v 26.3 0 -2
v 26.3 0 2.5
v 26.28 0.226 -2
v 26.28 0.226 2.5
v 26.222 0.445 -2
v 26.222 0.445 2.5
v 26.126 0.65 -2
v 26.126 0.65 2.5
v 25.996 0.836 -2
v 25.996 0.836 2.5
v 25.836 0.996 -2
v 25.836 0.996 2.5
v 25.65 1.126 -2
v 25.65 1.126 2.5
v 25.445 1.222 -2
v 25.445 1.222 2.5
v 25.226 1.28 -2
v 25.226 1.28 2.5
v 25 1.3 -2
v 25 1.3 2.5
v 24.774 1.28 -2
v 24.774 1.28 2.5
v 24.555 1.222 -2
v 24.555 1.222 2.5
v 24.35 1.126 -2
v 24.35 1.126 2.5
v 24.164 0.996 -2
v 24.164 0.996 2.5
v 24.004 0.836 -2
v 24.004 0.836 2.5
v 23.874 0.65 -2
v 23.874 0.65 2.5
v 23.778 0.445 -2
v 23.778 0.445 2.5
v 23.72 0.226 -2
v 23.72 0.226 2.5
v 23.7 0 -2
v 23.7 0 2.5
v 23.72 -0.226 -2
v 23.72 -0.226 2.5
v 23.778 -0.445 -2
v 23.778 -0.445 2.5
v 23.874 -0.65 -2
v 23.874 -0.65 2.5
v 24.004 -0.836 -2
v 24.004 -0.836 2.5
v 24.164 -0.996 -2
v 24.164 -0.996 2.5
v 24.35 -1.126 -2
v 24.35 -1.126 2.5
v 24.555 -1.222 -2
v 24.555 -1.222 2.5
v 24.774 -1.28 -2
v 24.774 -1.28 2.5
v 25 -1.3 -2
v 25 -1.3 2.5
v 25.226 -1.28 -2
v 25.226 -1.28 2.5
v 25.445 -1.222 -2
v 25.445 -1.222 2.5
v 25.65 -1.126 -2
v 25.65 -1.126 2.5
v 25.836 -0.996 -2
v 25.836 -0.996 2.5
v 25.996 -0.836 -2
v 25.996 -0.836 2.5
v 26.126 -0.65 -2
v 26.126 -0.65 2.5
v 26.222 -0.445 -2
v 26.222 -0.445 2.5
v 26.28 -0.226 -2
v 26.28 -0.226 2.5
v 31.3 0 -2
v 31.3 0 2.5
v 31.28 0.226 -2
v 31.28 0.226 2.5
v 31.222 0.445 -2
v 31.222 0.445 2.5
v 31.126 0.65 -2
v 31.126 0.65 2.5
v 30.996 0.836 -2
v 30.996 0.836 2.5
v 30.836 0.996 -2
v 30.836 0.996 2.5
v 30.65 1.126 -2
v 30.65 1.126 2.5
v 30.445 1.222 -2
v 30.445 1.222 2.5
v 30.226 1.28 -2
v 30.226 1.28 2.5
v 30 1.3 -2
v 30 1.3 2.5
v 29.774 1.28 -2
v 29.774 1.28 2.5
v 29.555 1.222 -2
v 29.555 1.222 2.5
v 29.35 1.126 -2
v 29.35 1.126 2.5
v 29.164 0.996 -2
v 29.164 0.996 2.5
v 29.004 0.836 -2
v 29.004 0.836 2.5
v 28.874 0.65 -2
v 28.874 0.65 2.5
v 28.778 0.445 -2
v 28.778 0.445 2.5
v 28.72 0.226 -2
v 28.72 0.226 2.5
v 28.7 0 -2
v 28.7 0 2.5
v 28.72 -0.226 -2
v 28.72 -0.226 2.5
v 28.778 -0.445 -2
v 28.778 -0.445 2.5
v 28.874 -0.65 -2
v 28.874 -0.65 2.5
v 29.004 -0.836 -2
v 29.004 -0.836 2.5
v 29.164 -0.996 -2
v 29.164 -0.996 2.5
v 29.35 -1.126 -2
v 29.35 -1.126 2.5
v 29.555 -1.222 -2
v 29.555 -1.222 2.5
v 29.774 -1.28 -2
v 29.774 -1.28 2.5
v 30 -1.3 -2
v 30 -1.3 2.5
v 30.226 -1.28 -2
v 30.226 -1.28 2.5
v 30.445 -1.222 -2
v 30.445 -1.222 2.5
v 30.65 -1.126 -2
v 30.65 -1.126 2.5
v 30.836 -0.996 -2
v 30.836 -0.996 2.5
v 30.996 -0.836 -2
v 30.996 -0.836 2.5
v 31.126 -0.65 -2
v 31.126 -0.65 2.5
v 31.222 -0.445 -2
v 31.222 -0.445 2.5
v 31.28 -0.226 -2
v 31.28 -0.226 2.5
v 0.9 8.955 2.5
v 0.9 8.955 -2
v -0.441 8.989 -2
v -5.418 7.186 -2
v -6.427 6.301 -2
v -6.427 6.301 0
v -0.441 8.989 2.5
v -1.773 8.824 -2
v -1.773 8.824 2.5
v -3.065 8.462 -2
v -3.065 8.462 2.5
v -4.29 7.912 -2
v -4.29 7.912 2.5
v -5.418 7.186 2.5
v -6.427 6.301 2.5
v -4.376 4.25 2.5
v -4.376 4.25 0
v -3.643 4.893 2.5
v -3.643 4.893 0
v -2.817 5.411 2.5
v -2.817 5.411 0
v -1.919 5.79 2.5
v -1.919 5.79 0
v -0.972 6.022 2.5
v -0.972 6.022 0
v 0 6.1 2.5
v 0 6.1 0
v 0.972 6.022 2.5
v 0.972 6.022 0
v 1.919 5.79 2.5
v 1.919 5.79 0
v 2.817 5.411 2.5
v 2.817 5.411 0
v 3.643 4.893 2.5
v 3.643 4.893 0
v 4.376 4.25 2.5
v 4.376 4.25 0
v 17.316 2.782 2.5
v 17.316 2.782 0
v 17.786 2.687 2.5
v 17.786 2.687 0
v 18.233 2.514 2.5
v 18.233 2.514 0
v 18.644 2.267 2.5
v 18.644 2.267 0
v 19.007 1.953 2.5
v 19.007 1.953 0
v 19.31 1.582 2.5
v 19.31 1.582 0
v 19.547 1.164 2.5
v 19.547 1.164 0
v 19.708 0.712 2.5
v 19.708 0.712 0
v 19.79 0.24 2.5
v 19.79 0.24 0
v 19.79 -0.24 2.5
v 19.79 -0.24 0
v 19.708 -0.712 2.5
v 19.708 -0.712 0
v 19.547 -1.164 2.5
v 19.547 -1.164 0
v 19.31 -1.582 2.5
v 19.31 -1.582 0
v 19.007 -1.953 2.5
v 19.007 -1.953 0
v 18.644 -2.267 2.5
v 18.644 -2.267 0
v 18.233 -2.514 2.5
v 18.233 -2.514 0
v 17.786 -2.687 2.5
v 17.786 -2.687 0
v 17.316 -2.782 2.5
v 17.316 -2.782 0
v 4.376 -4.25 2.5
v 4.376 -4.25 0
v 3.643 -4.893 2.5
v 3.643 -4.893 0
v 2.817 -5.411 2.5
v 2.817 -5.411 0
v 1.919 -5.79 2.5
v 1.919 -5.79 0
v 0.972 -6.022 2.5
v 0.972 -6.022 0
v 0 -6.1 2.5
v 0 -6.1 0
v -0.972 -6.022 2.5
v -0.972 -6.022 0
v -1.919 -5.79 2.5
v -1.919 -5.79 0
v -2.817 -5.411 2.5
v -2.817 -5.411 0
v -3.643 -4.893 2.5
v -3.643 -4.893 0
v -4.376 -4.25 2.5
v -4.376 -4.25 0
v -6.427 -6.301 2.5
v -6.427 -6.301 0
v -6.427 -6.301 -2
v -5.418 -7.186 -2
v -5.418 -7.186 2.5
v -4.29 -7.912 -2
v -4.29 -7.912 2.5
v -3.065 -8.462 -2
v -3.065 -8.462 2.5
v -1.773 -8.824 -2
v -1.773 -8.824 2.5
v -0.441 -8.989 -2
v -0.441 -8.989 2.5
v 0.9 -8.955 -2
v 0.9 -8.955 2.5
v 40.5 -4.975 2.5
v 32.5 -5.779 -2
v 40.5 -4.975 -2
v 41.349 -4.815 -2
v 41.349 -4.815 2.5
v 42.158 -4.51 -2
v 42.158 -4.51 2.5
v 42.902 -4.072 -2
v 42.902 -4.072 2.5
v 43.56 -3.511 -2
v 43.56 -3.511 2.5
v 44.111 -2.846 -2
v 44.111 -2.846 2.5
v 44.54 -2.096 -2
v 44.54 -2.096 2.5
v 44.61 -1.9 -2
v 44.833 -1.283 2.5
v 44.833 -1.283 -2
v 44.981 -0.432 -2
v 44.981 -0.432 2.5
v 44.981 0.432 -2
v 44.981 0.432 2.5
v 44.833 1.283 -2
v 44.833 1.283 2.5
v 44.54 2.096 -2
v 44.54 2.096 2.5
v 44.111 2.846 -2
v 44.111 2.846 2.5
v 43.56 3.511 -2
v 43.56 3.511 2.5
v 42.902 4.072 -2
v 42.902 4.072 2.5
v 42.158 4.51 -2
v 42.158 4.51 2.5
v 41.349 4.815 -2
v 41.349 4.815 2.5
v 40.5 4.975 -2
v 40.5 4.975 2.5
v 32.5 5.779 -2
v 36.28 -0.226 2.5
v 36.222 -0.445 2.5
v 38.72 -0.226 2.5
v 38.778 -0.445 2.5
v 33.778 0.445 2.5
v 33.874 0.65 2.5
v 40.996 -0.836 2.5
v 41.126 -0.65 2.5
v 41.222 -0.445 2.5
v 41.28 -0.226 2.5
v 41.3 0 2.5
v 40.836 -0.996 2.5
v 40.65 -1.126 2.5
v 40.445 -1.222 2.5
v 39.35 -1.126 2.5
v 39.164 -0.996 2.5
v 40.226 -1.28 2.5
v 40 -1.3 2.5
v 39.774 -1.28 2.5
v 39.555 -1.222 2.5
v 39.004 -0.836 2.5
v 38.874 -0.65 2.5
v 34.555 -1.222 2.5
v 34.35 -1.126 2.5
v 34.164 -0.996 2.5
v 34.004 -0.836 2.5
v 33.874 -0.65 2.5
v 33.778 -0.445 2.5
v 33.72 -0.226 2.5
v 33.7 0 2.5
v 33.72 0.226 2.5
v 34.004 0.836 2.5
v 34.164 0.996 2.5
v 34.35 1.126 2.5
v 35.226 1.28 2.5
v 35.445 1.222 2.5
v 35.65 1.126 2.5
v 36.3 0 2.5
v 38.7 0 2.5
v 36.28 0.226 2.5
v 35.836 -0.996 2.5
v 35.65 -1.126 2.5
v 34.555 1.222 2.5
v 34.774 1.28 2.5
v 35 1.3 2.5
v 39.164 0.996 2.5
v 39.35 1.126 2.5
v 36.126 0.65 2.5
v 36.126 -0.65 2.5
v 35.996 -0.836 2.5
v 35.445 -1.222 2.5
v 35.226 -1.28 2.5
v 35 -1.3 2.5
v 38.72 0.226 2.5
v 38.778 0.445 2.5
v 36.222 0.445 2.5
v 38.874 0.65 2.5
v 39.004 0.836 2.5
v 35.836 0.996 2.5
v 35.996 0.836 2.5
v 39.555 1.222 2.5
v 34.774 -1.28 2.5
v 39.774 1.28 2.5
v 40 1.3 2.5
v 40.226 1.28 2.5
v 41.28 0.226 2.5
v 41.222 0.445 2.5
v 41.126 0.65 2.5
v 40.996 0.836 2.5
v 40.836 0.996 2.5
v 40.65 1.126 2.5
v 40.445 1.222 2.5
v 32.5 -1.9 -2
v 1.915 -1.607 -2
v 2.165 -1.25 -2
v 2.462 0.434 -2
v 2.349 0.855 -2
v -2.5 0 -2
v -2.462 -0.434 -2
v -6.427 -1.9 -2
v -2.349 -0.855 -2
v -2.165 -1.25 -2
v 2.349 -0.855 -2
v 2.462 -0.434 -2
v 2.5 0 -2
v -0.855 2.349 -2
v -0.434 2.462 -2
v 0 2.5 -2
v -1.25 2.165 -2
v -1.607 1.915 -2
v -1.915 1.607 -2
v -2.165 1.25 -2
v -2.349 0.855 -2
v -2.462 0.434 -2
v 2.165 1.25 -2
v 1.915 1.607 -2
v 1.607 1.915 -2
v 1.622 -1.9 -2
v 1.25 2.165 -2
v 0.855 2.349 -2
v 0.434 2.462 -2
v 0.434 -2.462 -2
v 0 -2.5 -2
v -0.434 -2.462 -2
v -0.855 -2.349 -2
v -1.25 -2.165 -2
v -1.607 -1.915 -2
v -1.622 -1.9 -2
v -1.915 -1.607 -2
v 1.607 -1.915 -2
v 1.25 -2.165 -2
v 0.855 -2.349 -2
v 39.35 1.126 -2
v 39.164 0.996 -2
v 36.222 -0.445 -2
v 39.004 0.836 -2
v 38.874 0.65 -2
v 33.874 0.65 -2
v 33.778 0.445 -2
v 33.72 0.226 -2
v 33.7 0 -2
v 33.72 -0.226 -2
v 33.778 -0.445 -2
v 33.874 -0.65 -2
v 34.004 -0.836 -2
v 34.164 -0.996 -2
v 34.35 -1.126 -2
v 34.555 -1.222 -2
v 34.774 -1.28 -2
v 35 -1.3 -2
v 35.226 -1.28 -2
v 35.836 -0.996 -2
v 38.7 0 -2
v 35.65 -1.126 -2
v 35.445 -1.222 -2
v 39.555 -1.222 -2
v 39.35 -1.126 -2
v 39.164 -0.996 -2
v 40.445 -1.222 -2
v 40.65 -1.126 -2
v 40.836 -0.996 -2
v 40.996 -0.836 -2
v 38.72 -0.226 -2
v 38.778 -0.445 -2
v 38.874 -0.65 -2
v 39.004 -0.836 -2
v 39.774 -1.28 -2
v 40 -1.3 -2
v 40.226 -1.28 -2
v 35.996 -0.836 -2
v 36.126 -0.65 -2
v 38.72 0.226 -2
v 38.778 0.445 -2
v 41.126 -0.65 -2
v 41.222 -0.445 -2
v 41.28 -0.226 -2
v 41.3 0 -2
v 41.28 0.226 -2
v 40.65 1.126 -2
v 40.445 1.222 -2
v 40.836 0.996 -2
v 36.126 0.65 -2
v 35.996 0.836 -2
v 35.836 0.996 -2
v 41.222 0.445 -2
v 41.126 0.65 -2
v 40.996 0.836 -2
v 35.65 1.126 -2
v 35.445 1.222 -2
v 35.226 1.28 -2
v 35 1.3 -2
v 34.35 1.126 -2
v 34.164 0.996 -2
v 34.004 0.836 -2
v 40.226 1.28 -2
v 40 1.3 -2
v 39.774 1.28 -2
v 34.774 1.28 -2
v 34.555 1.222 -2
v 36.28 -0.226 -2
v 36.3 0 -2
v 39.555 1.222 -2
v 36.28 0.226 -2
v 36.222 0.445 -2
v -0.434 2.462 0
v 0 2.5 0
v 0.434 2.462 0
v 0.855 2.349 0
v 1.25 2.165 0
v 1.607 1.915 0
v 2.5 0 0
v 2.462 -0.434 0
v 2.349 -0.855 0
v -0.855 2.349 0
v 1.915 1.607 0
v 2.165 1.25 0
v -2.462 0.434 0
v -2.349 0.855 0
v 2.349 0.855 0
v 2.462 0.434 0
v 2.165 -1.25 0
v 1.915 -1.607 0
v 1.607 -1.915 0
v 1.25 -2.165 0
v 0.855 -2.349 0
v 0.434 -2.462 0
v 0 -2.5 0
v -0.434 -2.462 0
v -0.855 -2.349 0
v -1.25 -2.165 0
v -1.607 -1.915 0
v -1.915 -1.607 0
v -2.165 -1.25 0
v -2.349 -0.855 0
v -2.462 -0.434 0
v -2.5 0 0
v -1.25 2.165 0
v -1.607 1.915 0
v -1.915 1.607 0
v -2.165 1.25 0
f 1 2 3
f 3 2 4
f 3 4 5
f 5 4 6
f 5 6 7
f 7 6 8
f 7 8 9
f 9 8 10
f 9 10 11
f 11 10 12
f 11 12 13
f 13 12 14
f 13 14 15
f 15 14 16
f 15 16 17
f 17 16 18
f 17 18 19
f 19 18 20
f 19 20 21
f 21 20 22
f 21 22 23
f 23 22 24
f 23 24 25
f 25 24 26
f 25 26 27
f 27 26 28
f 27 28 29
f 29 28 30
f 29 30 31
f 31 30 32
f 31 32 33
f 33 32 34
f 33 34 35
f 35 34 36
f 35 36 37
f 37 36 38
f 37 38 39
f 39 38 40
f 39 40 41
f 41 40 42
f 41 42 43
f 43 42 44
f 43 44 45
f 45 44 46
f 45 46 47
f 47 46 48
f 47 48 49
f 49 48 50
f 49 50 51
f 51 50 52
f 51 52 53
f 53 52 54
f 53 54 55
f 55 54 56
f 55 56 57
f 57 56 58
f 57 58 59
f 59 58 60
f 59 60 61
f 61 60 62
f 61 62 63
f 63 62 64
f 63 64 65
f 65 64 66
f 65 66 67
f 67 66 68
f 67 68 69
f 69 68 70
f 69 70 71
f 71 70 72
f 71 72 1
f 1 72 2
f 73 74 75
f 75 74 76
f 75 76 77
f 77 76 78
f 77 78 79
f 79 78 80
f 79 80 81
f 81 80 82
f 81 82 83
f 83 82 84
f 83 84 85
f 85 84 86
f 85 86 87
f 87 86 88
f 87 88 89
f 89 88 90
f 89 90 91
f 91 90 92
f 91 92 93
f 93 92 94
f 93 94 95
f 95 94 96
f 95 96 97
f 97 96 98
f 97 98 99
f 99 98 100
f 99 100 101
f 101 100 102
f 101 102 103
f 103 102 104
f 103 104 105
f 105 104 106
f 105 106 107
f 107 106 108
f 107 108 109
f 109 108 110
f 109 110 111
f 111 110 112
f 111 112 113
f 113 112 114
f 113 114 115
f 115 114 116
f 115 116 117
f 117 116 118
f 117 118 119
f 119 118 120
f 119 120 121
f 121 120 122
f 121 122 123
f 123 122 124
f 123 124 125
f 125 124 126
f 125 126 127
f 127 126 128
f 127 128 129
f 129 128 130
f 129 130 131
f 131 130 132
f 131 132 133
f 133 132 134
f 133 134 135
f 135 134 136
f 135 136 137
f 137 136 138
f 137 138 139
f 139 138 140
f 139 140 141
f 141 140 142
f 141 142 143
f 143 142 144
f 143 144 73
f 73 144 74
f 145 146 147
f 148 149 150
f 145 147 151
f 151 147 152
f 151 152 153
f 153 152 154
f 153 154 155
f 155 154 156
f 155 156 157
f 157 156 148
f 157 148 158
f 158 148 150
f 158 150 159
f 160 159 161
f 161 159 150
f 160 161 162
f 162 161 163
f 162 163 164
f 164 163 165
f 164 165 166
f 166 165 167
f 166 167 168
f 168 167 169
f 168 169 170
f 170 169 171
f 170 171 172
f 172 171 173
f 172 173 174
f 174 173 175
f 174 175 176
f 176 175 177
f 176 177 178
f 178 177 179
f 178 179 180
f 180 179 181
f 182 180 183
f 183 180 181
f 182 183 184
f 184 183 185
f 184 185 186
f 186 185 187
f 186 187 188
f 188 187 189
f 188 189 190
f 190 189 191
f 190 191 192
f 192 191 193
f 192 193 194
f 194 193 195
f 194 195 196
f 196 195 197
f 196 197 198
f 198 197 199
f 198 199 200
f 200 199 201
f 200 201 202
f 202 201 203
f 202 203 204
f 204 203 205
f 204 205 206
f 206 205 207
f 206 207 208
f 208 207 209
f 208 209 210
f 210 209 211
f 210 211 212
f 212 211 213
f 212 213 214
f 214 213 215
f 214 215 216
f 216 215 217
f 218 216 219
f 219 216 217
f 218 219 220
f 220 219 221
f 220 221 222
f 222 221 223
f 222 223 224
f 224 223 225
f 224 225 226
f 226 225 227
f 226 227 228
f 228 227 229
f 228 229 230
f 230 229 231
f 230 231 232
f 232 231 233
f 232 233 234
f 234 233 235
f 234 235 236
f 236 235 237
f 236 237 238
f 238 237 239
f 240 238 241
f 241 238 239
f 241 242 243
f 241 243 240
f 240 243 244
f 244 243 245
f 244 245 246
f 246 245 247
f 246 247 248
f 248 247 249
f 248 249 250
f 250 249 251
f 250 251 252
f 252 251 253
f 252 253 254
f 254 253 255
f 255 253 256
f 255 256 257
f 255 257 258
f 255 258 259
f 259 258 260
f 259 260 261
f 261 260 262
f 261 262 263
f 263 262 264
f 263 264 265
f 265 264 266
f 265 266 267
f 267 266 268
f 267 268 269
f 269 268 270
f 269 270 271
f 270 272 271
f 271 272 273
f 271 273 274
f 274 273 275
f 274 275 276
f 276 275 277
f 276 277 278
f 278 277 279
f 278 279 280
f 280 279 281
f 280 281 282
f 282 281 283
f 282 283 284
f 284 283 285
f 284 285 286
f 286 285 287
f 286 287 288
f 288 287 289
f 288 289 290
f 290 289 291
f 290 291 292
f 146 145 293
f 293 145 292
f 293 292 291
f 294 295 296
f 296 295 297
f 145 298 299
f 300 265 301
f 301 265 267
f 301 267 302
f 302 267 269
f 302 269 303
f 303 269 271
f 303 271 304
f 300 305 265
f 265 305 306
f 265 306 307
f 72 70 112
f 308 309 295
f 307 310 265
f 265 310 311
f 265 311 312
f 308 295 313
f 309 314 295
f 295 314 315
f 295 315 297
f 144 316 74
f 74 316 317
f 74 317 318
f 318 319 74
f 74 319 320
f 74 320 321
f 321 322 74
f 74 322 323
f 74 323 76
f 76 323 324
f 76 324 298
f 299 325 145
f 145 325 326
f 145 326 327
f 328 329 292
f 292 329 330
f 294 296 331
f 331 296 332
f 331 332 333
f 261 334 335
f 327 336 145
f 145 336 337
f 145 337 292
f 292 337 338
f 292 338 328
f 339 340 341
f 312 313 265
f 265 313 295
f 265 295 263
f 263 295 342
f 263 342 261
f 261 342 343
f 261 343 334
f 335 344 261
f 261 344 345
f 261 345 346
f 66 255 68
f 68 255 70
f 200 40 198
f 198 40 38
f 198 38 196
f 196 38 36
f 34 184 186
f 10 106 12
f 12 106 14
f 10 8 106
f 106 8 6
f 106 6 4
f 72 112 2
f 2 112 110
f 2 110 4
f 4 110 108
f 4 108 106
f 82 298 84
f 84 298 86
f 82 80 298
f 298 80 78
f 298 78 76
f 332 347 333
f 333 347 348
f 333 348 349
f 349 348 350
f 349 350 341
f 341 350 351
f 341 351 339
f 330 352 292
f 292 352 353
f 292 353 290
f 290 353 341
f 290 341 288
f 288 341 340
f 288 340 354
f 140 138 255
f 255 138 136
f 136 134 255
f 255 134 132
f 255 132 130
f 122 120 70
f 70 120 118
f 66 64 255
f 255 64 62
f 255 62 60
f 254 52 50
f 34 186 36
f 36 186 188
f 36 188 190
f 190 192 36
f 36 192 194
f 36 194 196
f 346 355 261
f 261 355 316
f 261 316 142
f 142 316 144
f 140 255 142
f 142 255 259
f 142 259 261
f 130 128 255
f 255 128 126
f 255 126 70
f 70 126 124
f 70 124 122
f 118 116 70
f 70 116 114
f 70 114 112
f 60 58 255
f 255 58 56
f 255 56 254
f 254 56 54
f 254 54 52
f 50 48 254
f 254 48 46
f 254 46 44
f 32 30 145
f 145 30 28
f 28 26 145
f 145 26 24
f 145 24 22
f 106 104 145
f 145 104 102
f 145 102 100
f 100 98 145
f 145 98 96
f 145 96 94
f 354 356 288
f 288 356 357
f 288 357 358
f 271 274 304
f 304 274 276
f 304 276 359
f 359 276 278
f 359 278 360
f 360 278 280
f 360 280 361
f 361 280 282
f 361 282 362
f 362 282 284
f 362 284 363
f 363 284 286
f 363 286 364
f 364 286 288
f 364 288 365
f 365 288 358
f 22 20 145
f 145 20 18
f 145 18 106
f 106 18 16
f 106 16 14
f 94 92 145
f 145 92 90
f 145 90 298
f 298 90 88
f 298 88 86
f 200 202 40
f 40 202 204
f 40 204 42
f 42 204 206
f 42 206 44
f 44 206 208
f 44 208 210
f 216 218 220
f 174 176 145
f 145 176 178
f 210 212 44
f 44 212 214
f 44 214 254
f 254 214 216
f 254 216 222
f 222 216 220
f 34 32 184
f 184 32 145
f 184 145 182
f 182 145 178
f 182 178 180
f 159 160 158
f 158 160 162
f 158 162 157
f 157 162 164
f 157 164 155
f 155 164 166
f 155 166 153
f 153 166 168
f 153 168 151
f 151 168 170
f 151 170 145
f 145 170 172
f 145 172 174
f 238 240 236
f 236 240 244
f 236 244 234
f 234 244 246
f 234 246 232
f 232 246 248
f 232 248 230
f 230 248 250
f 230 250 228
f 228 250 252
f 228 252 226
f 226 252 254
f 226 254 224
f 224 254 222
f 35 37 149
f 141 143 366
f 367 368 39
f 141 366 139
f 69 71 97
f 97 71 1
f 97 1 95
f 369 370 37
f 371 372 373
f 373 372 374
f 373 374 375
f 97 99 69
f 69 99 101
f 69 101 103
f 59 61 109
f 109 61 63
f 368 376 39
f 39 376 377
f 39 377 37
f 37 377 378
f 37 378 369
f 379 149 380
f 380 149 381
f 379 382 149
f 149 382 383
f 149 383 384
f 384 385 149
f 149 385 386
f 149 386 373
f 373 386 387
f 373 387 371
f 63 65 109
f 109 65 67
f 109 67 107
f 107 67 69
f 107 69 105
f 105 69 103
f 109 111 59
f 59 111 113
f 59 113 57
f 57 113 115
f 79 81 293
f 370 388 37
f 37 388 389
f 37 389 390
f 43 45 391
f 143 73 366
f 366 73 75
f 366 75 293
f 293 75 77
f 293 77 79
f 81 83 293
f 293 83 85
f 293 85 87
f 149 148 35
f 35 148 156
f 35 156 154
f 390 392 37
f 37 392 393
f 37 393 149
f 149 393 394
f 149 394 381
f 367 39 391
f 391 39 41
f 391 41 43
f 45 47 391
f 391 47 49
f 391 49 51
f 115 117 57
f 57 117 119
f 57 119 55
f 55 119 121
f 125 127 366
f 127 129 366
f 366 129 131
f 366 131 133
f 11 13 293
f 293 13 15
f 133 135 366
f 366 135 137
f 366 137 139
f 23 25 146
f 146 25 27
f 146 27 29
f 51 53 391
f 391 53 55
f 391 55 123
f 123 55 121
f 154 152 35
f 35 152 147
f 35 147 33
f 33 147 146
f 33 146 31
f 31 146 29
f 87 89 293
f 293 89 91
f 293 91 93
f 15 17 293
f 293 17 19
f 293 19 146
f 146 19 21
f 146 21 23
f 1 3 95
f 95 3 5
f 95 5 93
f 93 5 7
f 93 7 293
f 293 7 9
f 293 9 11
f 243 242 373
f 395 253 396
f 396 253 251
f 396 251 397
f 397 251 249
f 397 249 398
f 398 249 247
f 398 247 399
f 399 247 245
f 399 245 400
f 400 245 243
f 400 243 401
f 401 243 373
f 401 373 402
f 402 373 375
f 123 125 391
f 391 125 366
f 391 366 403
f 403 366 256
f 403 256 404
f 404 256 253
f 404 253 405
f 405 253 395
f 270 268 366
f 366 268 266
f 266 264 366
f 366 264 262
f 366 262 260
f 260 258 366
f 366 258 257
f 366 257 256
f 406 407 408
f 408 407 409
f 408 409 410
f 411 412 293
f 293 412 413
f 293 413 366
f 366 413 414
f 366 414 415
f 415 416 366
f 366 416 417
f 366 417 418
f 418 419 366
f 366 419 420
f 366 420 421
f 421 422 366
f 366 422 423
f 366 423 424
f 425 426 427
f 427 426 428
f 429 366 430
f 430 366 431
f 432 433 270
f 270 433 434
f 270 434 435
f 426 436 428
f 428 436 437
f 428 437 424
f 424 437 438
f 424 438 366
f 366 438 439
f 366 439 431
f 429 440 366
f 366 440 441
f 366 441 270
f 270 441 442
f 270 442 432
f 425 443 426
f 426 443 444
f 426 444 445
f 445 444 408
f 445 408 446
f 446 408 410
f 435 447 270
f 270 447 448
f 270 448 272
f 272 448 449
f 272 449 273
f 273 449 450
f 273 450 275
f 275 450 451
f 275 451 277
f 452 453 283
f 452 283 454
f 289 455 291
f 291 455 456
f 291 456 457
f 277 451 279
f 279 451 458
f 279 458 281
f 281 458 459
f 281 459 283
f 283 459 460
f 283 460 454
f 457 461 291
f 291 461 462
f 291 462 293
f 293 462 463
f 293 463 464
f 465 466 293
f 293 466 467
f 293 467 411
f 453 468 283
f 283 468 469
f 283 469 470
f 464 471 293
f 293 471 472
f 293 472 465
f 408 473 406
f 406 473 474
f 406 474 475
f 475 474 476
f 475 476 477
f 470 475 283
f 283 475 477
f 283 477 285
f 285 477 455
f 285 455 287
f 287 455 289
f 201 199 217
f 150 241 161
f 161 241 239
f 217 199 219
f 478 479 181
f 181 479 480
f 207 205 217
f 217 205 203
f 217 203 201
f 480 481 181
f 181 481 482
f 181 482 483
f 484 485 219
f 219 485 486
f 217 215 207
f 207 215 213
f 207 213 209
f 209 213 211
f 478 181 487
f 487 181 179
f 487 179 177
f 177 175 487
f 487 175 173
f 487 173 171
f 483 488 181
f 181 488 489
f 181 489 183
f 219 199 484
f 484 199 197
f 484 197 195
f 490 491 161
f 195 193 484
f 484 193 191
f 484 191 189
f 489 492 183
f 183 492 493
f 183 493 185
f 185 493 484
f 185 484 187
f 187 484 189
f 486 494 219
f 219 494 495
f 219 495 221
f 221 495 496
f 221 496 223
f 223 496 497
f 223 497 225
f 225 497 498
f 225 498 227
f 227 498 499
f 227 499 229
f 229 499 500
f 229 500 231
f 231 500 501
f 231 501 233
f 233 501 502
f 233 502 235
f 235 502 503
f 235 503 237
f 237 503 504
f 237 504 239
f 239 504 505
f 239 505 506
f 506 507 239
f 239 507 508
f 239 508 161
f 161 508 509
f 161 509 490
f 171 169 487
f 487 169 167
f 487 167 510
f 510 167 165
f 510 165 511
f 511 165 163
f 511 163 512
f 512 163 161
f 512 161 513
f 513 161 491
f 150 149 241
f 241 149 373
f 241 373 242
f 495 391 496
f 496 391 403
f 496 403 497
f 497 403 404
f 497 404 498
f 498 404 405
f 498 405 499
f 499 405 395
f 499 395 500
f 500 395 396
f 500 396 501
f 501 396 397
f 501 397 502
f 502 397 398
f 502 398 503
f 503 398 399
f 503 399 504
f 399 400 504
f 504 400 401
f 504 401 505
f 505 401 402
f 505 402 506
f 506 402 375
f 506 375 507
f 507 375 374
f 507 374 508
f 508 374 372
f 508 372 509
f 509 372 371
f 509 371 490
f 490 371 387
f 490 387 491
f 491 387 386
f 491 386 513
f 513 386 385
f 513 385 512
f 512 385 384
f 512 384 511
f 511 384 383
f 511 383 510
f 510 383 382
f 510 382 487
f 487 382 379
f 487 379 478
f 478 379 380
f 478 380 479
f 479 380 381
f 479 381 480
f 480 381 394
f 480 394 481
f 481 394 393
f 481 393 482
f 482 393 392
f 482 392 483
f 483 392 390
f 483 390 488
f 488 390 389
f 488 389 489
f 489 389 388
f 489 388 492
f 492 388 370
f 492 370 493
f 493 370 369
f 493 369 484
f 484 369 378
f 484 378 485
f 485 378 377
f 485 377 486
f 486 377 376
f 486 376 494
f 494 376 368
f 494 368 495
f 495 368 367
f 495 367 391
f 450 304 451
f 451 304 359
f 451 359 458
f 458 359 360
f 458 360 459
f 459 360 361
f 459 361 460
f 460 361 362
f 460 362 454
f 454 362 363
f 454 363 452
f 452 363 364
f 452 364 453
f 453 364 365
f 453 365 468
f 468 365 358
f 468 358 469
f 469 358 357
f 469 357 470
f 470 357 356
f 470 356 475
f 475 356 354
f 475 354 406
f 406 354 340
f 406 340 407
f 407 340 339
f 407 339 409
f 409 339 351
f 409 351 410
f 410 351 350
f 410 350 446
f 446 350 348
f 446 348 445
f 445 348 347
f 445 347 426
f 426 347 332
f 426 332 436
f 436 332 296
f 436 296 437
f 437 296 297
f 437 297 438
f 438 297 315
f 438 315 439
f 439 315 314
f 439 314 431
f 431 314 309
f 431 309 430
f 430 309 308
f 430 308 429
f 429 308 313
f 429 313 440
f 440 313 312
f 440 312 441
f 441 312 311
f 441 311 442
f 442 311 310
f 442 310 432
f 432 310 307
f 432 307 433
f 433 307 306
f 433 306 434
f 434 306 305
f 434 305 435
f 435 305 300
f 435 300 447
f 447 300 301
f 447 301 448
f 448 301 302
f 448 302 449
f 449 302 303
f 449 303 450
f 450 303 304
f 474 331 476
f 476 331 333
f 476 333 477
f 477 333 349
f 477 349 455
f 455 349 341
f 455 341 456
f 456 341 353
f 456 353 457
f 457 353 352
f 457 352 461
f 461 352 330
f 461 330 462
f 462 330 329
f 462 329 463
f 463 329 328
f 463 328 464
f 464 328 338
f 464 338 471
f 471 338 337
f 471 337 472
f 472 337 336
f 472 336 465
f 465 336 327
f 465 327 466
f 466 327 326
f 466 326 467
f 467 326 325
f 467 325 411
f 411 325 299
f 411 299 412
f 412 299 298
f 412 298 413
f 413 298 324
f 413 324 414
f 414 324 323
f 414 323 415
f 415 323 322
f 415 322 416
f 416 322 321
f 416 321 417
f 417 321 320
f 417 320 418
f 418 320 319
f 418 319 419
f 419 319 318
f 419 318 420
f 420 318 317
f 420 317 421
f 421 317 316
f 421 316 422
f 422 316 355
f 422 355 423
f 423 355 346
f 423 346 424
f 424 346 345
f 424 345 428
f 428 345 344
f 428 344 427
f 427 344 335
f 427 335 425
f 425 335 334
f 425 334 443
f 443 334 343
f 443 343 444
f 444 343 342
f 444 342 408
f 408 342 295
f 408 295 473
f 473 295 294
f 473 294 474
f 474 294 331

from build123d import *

# Parameters (mm, degrees)
MAIN_DEPTH            = 2.5
ORIGINALBRACKET_START = 2
ESQUISSE2_R           = 2.5
ORIGINALBRACKET_DEPTH = 2
ESQUISSE3_R           = 1.3
FIXINGHOLE_DEPTH      = 47.111278447
LPATTERN1_COUNT       = 4
LPATTERN1_PITCH       = 5


with BuildPart() as part:
    # Esquisse1 → Main (new body)
    with BuildSketch(Plane.XY):
        with BuildLine():
            Line((-4.375785644, 4.25), (-6.426543071, 6.300757427))
            ThreePointArc((-6.426543071, 6.300757427), (-3.065415215, 8.461869153), (0.9, 8.954886934))
            Line((0.9, 8.954886934), (40.5, 4.974937186))
            ThreePointArc((40.5, 4.974937186), (45, 0), (40.5, -4.974937186))
            Line((40.5, -4.974937186), (0.9, -8.954886934))
            ThreePointArc((0.9, -8.954886934), (-3.065415215, -8.461869153), (-6.426543071, -6.300757427))
            Line((-6.426543071, -6.300757427), (-4.375785644, -4.25))
            ThreePointArc((-4.375785644, -4.25), (0, -6.1), (4.375785644, -4.25))
            Line((4.375785644, -4.25), (17.31559729, -2.78215714))
            ThreePointArc((17.31559729, -2.78215714), (19.8, 0), (17.31559729, 2.78215714))
            Line((17.31559729, 2.78215714), (4.375785644, 4.25))
            ThreePointArc((4.375785644, 4.25), (0, 6.1), (-4.375785644, 4.25))
        make_face()
    extrude(amount=MAIN_DEPTH)

    # Esquisse2 → OriginalBracket (add)
    with BuildSketch(Plane(origin=(0, 0, 0), x_dir=(-1, 0, 0), z_dir=(0, 0, -1)).offset(ORIGINALBRACKET_START)):
        with BuildLine():
            Line((-0.9, -8.954886934), (-40.5, -4.974937186))
            ThreePointArc((-40.5, -4.974937186), (-45, 0), (-40.5, 4.974937186))
            Line((-40.5, 4.974937186), (-0.9, 8.954886934))
            ThreePointArc((-0.9, 8.954886934), (3.065415215, 8.461869153), (6.426543071, 6.300757427))
            Line((6.426543071, 6.300757427), (6.426543071, -6.300757427))
            ThreePointArc((6.426543071, -6.300757427), (3.065415215, -8.461869153), (-0.9, -8.954886934))
        make_face()
        Circle(ESQUISSE2_R, mode=Mode.SUBTRACT)
    extrude(amount=-ORIGINALBRACKET_DEPTH)

    # Esquisse3 → FixingHole (cut, through all)
    with BuildSketch(Plane.XY.offset(2.5)):
        with Locations((40, 0)):
            Circle(ESQUISSE3_R)
    fixinghole = extrude(amount=-FIXINGHOLE_DEPTH, mode=Mode.SUBTRACT)

    # LPattern1: FixingHole ×4
    with Locations(*[(-i * LPATTERN1_PITCH, 0, 0) for i in range(1, LPATTERN1_COUNT)]):
        add(fixinghole, mode=Mode.SUBTRACT)


solid = part.part
